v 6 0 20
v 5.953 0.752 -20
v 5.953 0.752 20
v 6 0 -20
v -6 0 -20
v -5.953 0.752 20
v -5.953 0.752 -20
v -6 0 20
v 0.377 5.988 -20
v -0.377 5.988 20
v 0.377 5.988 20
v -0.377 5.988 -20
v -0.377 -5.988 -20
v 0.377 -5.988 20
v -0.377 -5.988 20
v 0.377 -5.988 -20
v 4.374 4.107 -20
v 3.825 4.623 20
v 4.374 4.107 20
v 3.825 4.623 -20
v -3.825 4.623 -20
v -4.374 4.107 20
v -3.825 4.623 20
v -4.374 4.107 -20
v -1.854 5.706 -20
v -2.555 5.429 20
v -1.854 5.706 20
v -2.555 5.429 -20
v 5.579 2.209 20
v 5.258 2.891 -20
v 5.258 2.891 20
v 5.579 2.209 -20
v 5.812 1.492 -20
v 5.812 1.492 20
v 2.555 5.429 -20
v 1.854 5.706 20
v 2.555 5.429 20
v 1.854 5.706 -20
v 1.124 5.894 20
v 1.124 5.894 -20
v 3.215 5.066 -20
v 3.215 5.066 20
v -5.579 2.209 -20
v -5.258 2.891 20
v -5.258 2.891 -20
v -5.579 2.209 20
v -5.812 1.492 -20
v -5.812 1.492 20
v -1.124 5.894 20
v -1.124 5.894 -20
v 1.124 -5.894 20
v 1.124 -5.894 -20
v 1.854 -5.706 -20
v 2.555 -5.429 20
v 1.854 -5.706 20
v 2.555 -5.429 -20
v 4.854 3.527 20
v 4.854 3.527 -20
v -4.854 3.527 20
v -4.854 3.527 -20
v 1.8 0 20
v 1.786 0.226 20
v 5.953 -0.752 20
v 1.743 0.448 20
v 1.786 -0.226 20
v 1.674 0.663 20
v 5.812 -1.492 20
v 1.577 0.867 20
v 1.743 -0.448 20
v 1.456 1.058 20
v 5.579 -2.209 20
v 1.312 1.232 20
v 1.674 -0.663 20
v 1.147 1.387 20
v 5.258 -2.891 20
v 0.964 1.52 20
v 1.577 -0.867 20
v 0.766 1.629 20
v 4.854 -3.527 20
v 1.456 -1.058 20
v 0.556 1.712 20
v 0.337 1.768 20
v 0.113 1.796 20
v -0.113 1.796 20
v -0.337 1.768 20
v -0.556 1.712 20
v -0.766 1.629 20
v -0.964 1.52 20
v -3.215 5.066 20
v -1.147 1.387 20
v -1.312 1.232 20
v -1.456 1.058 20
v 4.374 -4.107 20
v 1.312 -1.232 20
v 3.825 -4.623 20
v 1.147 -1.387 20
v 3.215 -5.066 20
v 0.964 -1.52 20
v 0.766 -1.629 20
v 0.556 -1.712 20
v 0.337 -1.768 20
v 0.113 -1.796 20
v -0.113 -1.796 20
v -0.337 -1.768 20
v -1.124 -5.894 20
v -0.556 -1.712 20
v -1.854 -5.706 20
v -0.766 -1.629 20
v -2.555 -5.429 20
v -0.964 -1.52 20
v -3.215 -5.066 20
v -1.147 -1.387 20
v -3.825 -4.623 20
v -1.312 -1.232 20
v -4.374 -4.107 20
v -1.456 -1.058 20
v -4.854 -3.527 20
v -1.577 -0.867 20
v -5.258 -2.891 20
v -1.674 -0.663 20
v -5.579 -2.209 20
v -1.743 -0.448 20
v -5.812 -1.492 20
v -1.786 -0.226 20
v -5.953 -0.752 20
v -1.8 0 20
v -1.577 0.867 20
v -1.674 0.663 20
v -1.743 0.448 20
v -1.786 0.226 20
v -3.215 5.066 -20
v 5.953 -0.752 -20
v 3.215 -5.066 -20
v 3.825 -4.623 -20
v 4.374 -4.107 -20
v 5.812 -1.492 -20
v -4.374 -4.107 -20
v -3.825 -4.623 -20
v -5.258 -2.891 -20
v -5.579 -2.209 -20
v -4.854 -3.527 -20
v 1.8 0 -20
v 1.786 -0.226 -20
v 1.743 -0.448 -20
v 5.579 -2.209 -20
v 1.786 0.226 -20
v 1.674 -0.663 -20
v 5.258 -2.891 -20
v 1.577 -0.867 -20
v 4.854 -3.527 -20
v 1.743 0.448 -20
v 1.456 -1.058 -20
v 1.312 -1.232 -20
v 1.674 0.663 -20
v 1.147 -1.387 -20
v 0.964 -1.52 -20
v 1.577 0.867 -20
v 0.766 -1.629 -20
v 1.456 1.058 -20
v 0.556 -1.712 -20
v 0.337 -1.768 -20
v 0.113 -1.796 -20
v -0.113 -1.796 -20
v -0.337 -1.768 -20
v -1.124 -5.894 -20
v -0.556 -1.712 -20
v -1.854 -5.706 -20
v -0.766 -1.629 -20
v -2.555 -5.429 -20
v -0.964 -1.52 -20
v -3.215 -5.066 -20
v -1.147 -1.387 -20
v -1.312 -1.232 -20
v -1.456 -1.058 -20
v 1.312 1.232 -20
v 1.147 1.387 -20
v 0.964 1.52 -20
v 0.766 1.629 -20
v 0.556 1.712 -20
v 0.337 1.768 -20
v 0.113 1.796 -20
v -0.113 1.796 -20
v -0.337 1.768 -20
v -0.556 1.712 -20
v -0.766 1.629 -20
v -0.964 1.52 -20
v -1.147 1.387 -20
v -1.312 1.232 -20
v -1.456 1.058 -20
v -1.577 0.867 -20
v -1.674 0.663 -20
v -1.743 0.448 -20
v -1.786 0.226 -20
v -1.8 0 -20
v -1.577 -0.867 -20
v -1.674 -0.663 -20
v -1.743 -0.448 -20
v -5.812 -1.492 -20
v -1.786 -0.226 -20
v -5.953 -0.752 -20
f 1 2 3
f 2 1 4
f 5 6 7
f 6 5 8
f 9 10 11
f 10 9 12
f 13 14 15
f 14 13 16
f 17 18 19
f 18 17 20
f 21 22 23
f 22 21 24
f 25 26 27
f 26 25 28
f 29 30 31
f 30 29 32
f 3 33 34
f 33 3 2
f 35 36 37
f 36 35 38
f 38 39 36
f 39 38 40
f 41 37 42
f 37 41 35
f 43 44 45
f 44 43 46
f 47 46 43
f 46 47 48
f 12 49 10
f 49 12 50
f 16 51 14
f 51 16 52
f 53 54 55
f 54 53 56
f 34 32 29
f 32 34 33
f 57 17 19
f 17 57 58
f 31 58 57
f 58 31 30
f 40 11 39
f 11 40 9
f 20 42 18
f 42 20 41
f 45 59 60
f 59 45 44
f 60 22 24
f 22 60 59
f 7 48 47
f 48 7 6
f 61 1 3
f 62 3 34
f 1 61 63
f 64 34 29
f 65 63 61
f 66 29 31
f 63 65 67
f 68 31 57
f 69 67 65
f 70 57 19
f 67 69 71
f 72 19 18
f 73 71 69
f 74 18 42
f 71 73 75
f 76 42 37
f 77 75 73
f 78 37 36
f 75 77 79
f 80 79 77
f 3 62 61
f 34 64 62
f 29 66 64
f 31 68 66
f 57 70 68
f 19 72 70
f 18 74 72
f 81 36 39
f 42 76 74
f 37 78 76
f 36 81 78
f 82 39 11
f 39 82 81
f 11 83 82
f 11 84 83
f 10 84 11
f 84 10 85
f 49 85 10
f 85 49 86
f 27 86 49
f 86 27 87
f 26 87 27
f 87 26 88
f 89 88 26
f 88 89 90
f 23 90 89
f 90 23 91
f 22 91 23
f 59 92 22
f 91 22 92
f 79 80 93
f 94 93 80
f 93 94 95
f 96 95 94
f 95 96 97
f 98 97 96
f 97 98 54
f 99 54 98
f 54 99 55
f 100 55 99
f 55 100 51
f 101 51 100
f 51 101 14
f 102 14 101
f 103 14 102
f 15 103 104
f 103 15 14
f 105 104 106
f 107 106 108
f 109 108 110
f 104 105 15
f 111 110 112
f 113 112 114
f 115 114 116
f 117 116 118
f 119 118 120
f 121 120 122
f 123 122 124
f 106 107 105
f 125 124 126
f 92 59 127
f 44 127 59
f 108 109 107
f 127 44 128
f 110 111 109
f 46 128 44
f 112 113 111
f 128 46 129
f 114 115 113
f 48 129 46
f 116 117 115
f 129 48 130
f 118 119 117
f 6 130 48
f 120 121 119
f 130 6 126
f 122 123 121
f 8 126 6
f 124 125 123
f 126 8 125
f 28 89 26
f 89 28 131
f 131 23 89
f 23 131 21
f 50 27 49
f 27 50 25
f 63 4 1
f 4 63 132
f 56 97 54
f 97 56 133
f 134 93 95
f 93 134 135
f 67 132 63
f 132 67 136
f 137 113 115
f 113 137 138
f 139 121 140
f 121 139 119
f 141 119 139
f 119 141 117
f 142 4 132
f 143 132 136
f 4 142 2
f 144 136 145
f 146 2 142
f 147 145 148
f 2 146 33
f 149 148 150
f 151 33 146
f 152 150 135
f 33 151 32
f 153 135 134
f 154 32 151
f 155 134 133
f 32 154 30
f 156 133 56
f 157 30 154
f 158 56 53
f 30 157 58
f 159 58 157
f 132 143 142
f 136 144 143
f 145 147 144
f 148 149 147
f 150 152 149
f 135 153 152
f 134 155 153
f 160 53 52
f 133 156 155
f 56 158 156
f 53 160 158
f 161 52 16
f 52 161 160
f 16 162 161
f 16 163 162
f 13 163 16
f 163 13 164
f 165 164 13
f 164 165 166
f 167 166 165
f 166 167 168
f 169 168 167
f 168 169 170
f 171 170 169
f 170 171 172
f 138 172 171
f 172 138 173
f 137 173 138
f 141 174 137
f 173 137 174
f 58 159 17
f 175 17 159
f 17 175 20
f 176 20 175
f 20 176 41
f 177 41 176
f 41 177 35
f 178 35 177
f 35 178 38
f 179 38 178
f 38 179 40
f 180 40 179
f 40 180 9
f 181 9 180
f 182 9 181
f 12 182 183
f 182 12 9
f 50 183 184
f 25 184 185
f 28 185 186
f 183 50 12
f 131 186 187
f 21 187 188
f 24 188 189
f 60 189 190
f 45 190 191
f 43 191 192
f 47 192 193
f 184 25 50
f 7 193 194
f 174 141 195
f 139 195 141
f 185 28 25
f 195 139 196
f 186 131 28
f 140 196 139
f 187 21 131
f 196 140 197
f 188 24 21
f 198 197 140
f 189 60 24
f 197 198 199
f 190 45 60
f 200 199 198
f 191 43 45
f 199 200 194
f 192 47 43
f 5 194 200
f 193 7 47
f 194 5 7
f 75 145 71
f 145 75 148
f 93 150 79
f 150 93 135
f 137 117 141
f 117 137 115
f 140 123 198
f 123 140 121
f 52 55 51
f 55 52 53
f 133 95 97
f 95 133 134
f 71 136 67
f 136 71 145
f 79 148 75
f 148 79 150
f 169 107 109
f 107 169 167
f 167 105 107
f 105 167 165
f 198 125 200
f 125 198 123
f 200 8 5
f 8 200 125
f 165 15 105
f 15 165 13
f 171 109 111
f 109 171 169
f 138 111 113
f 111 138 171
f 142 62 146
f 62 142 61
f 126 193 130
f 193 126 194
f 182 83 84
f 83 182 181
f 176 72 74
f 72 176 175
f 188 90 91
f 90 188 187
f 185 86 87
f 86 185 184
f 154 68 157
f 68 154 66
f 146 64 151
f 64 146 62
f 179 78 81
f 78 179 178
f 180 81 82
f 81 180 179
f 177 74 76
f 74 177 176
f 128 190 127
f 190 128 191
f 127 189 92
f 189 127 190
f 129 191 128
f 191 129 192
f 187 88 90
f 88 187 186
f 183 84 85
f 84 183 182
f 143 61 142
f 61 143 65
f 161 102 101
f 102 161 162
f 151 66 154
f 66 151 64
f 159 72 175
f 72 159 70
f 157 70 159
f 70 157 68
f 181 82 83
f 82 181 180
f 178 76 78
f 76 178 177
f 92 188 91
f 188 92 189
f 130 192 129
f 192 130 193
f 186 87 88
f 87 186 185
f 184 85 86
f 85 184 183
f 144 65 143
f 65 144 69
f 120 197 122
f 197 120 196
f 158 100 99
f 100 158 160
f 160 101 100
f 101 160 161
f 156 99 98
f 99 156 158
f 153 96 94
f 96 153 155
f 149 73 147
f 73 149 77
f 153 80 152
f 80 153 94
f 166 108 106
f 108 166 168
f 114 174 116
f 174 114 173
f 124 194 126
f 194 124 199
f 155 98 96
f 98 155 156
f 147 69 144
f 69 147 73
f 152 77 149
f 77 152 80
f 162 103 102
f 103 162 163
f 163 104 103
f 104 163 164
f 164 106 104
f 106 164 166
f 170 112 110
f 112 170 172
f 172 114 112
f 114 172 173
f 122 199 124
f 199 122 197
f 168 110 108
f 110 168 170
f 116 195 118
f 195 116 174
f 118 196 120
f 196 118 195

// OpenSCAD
$fn = 50;


difference() {
	union() {
		translate(v = [0, 0, -20.0000000000]) {
			cylinder(h = 40, r = 6.0000000000);
		}
	}
	union() {
		translate(v = [0, 0, -100.0000000000]) {
			cylinder(h = 200, r = 1.8000000000);
		}
	}
}
